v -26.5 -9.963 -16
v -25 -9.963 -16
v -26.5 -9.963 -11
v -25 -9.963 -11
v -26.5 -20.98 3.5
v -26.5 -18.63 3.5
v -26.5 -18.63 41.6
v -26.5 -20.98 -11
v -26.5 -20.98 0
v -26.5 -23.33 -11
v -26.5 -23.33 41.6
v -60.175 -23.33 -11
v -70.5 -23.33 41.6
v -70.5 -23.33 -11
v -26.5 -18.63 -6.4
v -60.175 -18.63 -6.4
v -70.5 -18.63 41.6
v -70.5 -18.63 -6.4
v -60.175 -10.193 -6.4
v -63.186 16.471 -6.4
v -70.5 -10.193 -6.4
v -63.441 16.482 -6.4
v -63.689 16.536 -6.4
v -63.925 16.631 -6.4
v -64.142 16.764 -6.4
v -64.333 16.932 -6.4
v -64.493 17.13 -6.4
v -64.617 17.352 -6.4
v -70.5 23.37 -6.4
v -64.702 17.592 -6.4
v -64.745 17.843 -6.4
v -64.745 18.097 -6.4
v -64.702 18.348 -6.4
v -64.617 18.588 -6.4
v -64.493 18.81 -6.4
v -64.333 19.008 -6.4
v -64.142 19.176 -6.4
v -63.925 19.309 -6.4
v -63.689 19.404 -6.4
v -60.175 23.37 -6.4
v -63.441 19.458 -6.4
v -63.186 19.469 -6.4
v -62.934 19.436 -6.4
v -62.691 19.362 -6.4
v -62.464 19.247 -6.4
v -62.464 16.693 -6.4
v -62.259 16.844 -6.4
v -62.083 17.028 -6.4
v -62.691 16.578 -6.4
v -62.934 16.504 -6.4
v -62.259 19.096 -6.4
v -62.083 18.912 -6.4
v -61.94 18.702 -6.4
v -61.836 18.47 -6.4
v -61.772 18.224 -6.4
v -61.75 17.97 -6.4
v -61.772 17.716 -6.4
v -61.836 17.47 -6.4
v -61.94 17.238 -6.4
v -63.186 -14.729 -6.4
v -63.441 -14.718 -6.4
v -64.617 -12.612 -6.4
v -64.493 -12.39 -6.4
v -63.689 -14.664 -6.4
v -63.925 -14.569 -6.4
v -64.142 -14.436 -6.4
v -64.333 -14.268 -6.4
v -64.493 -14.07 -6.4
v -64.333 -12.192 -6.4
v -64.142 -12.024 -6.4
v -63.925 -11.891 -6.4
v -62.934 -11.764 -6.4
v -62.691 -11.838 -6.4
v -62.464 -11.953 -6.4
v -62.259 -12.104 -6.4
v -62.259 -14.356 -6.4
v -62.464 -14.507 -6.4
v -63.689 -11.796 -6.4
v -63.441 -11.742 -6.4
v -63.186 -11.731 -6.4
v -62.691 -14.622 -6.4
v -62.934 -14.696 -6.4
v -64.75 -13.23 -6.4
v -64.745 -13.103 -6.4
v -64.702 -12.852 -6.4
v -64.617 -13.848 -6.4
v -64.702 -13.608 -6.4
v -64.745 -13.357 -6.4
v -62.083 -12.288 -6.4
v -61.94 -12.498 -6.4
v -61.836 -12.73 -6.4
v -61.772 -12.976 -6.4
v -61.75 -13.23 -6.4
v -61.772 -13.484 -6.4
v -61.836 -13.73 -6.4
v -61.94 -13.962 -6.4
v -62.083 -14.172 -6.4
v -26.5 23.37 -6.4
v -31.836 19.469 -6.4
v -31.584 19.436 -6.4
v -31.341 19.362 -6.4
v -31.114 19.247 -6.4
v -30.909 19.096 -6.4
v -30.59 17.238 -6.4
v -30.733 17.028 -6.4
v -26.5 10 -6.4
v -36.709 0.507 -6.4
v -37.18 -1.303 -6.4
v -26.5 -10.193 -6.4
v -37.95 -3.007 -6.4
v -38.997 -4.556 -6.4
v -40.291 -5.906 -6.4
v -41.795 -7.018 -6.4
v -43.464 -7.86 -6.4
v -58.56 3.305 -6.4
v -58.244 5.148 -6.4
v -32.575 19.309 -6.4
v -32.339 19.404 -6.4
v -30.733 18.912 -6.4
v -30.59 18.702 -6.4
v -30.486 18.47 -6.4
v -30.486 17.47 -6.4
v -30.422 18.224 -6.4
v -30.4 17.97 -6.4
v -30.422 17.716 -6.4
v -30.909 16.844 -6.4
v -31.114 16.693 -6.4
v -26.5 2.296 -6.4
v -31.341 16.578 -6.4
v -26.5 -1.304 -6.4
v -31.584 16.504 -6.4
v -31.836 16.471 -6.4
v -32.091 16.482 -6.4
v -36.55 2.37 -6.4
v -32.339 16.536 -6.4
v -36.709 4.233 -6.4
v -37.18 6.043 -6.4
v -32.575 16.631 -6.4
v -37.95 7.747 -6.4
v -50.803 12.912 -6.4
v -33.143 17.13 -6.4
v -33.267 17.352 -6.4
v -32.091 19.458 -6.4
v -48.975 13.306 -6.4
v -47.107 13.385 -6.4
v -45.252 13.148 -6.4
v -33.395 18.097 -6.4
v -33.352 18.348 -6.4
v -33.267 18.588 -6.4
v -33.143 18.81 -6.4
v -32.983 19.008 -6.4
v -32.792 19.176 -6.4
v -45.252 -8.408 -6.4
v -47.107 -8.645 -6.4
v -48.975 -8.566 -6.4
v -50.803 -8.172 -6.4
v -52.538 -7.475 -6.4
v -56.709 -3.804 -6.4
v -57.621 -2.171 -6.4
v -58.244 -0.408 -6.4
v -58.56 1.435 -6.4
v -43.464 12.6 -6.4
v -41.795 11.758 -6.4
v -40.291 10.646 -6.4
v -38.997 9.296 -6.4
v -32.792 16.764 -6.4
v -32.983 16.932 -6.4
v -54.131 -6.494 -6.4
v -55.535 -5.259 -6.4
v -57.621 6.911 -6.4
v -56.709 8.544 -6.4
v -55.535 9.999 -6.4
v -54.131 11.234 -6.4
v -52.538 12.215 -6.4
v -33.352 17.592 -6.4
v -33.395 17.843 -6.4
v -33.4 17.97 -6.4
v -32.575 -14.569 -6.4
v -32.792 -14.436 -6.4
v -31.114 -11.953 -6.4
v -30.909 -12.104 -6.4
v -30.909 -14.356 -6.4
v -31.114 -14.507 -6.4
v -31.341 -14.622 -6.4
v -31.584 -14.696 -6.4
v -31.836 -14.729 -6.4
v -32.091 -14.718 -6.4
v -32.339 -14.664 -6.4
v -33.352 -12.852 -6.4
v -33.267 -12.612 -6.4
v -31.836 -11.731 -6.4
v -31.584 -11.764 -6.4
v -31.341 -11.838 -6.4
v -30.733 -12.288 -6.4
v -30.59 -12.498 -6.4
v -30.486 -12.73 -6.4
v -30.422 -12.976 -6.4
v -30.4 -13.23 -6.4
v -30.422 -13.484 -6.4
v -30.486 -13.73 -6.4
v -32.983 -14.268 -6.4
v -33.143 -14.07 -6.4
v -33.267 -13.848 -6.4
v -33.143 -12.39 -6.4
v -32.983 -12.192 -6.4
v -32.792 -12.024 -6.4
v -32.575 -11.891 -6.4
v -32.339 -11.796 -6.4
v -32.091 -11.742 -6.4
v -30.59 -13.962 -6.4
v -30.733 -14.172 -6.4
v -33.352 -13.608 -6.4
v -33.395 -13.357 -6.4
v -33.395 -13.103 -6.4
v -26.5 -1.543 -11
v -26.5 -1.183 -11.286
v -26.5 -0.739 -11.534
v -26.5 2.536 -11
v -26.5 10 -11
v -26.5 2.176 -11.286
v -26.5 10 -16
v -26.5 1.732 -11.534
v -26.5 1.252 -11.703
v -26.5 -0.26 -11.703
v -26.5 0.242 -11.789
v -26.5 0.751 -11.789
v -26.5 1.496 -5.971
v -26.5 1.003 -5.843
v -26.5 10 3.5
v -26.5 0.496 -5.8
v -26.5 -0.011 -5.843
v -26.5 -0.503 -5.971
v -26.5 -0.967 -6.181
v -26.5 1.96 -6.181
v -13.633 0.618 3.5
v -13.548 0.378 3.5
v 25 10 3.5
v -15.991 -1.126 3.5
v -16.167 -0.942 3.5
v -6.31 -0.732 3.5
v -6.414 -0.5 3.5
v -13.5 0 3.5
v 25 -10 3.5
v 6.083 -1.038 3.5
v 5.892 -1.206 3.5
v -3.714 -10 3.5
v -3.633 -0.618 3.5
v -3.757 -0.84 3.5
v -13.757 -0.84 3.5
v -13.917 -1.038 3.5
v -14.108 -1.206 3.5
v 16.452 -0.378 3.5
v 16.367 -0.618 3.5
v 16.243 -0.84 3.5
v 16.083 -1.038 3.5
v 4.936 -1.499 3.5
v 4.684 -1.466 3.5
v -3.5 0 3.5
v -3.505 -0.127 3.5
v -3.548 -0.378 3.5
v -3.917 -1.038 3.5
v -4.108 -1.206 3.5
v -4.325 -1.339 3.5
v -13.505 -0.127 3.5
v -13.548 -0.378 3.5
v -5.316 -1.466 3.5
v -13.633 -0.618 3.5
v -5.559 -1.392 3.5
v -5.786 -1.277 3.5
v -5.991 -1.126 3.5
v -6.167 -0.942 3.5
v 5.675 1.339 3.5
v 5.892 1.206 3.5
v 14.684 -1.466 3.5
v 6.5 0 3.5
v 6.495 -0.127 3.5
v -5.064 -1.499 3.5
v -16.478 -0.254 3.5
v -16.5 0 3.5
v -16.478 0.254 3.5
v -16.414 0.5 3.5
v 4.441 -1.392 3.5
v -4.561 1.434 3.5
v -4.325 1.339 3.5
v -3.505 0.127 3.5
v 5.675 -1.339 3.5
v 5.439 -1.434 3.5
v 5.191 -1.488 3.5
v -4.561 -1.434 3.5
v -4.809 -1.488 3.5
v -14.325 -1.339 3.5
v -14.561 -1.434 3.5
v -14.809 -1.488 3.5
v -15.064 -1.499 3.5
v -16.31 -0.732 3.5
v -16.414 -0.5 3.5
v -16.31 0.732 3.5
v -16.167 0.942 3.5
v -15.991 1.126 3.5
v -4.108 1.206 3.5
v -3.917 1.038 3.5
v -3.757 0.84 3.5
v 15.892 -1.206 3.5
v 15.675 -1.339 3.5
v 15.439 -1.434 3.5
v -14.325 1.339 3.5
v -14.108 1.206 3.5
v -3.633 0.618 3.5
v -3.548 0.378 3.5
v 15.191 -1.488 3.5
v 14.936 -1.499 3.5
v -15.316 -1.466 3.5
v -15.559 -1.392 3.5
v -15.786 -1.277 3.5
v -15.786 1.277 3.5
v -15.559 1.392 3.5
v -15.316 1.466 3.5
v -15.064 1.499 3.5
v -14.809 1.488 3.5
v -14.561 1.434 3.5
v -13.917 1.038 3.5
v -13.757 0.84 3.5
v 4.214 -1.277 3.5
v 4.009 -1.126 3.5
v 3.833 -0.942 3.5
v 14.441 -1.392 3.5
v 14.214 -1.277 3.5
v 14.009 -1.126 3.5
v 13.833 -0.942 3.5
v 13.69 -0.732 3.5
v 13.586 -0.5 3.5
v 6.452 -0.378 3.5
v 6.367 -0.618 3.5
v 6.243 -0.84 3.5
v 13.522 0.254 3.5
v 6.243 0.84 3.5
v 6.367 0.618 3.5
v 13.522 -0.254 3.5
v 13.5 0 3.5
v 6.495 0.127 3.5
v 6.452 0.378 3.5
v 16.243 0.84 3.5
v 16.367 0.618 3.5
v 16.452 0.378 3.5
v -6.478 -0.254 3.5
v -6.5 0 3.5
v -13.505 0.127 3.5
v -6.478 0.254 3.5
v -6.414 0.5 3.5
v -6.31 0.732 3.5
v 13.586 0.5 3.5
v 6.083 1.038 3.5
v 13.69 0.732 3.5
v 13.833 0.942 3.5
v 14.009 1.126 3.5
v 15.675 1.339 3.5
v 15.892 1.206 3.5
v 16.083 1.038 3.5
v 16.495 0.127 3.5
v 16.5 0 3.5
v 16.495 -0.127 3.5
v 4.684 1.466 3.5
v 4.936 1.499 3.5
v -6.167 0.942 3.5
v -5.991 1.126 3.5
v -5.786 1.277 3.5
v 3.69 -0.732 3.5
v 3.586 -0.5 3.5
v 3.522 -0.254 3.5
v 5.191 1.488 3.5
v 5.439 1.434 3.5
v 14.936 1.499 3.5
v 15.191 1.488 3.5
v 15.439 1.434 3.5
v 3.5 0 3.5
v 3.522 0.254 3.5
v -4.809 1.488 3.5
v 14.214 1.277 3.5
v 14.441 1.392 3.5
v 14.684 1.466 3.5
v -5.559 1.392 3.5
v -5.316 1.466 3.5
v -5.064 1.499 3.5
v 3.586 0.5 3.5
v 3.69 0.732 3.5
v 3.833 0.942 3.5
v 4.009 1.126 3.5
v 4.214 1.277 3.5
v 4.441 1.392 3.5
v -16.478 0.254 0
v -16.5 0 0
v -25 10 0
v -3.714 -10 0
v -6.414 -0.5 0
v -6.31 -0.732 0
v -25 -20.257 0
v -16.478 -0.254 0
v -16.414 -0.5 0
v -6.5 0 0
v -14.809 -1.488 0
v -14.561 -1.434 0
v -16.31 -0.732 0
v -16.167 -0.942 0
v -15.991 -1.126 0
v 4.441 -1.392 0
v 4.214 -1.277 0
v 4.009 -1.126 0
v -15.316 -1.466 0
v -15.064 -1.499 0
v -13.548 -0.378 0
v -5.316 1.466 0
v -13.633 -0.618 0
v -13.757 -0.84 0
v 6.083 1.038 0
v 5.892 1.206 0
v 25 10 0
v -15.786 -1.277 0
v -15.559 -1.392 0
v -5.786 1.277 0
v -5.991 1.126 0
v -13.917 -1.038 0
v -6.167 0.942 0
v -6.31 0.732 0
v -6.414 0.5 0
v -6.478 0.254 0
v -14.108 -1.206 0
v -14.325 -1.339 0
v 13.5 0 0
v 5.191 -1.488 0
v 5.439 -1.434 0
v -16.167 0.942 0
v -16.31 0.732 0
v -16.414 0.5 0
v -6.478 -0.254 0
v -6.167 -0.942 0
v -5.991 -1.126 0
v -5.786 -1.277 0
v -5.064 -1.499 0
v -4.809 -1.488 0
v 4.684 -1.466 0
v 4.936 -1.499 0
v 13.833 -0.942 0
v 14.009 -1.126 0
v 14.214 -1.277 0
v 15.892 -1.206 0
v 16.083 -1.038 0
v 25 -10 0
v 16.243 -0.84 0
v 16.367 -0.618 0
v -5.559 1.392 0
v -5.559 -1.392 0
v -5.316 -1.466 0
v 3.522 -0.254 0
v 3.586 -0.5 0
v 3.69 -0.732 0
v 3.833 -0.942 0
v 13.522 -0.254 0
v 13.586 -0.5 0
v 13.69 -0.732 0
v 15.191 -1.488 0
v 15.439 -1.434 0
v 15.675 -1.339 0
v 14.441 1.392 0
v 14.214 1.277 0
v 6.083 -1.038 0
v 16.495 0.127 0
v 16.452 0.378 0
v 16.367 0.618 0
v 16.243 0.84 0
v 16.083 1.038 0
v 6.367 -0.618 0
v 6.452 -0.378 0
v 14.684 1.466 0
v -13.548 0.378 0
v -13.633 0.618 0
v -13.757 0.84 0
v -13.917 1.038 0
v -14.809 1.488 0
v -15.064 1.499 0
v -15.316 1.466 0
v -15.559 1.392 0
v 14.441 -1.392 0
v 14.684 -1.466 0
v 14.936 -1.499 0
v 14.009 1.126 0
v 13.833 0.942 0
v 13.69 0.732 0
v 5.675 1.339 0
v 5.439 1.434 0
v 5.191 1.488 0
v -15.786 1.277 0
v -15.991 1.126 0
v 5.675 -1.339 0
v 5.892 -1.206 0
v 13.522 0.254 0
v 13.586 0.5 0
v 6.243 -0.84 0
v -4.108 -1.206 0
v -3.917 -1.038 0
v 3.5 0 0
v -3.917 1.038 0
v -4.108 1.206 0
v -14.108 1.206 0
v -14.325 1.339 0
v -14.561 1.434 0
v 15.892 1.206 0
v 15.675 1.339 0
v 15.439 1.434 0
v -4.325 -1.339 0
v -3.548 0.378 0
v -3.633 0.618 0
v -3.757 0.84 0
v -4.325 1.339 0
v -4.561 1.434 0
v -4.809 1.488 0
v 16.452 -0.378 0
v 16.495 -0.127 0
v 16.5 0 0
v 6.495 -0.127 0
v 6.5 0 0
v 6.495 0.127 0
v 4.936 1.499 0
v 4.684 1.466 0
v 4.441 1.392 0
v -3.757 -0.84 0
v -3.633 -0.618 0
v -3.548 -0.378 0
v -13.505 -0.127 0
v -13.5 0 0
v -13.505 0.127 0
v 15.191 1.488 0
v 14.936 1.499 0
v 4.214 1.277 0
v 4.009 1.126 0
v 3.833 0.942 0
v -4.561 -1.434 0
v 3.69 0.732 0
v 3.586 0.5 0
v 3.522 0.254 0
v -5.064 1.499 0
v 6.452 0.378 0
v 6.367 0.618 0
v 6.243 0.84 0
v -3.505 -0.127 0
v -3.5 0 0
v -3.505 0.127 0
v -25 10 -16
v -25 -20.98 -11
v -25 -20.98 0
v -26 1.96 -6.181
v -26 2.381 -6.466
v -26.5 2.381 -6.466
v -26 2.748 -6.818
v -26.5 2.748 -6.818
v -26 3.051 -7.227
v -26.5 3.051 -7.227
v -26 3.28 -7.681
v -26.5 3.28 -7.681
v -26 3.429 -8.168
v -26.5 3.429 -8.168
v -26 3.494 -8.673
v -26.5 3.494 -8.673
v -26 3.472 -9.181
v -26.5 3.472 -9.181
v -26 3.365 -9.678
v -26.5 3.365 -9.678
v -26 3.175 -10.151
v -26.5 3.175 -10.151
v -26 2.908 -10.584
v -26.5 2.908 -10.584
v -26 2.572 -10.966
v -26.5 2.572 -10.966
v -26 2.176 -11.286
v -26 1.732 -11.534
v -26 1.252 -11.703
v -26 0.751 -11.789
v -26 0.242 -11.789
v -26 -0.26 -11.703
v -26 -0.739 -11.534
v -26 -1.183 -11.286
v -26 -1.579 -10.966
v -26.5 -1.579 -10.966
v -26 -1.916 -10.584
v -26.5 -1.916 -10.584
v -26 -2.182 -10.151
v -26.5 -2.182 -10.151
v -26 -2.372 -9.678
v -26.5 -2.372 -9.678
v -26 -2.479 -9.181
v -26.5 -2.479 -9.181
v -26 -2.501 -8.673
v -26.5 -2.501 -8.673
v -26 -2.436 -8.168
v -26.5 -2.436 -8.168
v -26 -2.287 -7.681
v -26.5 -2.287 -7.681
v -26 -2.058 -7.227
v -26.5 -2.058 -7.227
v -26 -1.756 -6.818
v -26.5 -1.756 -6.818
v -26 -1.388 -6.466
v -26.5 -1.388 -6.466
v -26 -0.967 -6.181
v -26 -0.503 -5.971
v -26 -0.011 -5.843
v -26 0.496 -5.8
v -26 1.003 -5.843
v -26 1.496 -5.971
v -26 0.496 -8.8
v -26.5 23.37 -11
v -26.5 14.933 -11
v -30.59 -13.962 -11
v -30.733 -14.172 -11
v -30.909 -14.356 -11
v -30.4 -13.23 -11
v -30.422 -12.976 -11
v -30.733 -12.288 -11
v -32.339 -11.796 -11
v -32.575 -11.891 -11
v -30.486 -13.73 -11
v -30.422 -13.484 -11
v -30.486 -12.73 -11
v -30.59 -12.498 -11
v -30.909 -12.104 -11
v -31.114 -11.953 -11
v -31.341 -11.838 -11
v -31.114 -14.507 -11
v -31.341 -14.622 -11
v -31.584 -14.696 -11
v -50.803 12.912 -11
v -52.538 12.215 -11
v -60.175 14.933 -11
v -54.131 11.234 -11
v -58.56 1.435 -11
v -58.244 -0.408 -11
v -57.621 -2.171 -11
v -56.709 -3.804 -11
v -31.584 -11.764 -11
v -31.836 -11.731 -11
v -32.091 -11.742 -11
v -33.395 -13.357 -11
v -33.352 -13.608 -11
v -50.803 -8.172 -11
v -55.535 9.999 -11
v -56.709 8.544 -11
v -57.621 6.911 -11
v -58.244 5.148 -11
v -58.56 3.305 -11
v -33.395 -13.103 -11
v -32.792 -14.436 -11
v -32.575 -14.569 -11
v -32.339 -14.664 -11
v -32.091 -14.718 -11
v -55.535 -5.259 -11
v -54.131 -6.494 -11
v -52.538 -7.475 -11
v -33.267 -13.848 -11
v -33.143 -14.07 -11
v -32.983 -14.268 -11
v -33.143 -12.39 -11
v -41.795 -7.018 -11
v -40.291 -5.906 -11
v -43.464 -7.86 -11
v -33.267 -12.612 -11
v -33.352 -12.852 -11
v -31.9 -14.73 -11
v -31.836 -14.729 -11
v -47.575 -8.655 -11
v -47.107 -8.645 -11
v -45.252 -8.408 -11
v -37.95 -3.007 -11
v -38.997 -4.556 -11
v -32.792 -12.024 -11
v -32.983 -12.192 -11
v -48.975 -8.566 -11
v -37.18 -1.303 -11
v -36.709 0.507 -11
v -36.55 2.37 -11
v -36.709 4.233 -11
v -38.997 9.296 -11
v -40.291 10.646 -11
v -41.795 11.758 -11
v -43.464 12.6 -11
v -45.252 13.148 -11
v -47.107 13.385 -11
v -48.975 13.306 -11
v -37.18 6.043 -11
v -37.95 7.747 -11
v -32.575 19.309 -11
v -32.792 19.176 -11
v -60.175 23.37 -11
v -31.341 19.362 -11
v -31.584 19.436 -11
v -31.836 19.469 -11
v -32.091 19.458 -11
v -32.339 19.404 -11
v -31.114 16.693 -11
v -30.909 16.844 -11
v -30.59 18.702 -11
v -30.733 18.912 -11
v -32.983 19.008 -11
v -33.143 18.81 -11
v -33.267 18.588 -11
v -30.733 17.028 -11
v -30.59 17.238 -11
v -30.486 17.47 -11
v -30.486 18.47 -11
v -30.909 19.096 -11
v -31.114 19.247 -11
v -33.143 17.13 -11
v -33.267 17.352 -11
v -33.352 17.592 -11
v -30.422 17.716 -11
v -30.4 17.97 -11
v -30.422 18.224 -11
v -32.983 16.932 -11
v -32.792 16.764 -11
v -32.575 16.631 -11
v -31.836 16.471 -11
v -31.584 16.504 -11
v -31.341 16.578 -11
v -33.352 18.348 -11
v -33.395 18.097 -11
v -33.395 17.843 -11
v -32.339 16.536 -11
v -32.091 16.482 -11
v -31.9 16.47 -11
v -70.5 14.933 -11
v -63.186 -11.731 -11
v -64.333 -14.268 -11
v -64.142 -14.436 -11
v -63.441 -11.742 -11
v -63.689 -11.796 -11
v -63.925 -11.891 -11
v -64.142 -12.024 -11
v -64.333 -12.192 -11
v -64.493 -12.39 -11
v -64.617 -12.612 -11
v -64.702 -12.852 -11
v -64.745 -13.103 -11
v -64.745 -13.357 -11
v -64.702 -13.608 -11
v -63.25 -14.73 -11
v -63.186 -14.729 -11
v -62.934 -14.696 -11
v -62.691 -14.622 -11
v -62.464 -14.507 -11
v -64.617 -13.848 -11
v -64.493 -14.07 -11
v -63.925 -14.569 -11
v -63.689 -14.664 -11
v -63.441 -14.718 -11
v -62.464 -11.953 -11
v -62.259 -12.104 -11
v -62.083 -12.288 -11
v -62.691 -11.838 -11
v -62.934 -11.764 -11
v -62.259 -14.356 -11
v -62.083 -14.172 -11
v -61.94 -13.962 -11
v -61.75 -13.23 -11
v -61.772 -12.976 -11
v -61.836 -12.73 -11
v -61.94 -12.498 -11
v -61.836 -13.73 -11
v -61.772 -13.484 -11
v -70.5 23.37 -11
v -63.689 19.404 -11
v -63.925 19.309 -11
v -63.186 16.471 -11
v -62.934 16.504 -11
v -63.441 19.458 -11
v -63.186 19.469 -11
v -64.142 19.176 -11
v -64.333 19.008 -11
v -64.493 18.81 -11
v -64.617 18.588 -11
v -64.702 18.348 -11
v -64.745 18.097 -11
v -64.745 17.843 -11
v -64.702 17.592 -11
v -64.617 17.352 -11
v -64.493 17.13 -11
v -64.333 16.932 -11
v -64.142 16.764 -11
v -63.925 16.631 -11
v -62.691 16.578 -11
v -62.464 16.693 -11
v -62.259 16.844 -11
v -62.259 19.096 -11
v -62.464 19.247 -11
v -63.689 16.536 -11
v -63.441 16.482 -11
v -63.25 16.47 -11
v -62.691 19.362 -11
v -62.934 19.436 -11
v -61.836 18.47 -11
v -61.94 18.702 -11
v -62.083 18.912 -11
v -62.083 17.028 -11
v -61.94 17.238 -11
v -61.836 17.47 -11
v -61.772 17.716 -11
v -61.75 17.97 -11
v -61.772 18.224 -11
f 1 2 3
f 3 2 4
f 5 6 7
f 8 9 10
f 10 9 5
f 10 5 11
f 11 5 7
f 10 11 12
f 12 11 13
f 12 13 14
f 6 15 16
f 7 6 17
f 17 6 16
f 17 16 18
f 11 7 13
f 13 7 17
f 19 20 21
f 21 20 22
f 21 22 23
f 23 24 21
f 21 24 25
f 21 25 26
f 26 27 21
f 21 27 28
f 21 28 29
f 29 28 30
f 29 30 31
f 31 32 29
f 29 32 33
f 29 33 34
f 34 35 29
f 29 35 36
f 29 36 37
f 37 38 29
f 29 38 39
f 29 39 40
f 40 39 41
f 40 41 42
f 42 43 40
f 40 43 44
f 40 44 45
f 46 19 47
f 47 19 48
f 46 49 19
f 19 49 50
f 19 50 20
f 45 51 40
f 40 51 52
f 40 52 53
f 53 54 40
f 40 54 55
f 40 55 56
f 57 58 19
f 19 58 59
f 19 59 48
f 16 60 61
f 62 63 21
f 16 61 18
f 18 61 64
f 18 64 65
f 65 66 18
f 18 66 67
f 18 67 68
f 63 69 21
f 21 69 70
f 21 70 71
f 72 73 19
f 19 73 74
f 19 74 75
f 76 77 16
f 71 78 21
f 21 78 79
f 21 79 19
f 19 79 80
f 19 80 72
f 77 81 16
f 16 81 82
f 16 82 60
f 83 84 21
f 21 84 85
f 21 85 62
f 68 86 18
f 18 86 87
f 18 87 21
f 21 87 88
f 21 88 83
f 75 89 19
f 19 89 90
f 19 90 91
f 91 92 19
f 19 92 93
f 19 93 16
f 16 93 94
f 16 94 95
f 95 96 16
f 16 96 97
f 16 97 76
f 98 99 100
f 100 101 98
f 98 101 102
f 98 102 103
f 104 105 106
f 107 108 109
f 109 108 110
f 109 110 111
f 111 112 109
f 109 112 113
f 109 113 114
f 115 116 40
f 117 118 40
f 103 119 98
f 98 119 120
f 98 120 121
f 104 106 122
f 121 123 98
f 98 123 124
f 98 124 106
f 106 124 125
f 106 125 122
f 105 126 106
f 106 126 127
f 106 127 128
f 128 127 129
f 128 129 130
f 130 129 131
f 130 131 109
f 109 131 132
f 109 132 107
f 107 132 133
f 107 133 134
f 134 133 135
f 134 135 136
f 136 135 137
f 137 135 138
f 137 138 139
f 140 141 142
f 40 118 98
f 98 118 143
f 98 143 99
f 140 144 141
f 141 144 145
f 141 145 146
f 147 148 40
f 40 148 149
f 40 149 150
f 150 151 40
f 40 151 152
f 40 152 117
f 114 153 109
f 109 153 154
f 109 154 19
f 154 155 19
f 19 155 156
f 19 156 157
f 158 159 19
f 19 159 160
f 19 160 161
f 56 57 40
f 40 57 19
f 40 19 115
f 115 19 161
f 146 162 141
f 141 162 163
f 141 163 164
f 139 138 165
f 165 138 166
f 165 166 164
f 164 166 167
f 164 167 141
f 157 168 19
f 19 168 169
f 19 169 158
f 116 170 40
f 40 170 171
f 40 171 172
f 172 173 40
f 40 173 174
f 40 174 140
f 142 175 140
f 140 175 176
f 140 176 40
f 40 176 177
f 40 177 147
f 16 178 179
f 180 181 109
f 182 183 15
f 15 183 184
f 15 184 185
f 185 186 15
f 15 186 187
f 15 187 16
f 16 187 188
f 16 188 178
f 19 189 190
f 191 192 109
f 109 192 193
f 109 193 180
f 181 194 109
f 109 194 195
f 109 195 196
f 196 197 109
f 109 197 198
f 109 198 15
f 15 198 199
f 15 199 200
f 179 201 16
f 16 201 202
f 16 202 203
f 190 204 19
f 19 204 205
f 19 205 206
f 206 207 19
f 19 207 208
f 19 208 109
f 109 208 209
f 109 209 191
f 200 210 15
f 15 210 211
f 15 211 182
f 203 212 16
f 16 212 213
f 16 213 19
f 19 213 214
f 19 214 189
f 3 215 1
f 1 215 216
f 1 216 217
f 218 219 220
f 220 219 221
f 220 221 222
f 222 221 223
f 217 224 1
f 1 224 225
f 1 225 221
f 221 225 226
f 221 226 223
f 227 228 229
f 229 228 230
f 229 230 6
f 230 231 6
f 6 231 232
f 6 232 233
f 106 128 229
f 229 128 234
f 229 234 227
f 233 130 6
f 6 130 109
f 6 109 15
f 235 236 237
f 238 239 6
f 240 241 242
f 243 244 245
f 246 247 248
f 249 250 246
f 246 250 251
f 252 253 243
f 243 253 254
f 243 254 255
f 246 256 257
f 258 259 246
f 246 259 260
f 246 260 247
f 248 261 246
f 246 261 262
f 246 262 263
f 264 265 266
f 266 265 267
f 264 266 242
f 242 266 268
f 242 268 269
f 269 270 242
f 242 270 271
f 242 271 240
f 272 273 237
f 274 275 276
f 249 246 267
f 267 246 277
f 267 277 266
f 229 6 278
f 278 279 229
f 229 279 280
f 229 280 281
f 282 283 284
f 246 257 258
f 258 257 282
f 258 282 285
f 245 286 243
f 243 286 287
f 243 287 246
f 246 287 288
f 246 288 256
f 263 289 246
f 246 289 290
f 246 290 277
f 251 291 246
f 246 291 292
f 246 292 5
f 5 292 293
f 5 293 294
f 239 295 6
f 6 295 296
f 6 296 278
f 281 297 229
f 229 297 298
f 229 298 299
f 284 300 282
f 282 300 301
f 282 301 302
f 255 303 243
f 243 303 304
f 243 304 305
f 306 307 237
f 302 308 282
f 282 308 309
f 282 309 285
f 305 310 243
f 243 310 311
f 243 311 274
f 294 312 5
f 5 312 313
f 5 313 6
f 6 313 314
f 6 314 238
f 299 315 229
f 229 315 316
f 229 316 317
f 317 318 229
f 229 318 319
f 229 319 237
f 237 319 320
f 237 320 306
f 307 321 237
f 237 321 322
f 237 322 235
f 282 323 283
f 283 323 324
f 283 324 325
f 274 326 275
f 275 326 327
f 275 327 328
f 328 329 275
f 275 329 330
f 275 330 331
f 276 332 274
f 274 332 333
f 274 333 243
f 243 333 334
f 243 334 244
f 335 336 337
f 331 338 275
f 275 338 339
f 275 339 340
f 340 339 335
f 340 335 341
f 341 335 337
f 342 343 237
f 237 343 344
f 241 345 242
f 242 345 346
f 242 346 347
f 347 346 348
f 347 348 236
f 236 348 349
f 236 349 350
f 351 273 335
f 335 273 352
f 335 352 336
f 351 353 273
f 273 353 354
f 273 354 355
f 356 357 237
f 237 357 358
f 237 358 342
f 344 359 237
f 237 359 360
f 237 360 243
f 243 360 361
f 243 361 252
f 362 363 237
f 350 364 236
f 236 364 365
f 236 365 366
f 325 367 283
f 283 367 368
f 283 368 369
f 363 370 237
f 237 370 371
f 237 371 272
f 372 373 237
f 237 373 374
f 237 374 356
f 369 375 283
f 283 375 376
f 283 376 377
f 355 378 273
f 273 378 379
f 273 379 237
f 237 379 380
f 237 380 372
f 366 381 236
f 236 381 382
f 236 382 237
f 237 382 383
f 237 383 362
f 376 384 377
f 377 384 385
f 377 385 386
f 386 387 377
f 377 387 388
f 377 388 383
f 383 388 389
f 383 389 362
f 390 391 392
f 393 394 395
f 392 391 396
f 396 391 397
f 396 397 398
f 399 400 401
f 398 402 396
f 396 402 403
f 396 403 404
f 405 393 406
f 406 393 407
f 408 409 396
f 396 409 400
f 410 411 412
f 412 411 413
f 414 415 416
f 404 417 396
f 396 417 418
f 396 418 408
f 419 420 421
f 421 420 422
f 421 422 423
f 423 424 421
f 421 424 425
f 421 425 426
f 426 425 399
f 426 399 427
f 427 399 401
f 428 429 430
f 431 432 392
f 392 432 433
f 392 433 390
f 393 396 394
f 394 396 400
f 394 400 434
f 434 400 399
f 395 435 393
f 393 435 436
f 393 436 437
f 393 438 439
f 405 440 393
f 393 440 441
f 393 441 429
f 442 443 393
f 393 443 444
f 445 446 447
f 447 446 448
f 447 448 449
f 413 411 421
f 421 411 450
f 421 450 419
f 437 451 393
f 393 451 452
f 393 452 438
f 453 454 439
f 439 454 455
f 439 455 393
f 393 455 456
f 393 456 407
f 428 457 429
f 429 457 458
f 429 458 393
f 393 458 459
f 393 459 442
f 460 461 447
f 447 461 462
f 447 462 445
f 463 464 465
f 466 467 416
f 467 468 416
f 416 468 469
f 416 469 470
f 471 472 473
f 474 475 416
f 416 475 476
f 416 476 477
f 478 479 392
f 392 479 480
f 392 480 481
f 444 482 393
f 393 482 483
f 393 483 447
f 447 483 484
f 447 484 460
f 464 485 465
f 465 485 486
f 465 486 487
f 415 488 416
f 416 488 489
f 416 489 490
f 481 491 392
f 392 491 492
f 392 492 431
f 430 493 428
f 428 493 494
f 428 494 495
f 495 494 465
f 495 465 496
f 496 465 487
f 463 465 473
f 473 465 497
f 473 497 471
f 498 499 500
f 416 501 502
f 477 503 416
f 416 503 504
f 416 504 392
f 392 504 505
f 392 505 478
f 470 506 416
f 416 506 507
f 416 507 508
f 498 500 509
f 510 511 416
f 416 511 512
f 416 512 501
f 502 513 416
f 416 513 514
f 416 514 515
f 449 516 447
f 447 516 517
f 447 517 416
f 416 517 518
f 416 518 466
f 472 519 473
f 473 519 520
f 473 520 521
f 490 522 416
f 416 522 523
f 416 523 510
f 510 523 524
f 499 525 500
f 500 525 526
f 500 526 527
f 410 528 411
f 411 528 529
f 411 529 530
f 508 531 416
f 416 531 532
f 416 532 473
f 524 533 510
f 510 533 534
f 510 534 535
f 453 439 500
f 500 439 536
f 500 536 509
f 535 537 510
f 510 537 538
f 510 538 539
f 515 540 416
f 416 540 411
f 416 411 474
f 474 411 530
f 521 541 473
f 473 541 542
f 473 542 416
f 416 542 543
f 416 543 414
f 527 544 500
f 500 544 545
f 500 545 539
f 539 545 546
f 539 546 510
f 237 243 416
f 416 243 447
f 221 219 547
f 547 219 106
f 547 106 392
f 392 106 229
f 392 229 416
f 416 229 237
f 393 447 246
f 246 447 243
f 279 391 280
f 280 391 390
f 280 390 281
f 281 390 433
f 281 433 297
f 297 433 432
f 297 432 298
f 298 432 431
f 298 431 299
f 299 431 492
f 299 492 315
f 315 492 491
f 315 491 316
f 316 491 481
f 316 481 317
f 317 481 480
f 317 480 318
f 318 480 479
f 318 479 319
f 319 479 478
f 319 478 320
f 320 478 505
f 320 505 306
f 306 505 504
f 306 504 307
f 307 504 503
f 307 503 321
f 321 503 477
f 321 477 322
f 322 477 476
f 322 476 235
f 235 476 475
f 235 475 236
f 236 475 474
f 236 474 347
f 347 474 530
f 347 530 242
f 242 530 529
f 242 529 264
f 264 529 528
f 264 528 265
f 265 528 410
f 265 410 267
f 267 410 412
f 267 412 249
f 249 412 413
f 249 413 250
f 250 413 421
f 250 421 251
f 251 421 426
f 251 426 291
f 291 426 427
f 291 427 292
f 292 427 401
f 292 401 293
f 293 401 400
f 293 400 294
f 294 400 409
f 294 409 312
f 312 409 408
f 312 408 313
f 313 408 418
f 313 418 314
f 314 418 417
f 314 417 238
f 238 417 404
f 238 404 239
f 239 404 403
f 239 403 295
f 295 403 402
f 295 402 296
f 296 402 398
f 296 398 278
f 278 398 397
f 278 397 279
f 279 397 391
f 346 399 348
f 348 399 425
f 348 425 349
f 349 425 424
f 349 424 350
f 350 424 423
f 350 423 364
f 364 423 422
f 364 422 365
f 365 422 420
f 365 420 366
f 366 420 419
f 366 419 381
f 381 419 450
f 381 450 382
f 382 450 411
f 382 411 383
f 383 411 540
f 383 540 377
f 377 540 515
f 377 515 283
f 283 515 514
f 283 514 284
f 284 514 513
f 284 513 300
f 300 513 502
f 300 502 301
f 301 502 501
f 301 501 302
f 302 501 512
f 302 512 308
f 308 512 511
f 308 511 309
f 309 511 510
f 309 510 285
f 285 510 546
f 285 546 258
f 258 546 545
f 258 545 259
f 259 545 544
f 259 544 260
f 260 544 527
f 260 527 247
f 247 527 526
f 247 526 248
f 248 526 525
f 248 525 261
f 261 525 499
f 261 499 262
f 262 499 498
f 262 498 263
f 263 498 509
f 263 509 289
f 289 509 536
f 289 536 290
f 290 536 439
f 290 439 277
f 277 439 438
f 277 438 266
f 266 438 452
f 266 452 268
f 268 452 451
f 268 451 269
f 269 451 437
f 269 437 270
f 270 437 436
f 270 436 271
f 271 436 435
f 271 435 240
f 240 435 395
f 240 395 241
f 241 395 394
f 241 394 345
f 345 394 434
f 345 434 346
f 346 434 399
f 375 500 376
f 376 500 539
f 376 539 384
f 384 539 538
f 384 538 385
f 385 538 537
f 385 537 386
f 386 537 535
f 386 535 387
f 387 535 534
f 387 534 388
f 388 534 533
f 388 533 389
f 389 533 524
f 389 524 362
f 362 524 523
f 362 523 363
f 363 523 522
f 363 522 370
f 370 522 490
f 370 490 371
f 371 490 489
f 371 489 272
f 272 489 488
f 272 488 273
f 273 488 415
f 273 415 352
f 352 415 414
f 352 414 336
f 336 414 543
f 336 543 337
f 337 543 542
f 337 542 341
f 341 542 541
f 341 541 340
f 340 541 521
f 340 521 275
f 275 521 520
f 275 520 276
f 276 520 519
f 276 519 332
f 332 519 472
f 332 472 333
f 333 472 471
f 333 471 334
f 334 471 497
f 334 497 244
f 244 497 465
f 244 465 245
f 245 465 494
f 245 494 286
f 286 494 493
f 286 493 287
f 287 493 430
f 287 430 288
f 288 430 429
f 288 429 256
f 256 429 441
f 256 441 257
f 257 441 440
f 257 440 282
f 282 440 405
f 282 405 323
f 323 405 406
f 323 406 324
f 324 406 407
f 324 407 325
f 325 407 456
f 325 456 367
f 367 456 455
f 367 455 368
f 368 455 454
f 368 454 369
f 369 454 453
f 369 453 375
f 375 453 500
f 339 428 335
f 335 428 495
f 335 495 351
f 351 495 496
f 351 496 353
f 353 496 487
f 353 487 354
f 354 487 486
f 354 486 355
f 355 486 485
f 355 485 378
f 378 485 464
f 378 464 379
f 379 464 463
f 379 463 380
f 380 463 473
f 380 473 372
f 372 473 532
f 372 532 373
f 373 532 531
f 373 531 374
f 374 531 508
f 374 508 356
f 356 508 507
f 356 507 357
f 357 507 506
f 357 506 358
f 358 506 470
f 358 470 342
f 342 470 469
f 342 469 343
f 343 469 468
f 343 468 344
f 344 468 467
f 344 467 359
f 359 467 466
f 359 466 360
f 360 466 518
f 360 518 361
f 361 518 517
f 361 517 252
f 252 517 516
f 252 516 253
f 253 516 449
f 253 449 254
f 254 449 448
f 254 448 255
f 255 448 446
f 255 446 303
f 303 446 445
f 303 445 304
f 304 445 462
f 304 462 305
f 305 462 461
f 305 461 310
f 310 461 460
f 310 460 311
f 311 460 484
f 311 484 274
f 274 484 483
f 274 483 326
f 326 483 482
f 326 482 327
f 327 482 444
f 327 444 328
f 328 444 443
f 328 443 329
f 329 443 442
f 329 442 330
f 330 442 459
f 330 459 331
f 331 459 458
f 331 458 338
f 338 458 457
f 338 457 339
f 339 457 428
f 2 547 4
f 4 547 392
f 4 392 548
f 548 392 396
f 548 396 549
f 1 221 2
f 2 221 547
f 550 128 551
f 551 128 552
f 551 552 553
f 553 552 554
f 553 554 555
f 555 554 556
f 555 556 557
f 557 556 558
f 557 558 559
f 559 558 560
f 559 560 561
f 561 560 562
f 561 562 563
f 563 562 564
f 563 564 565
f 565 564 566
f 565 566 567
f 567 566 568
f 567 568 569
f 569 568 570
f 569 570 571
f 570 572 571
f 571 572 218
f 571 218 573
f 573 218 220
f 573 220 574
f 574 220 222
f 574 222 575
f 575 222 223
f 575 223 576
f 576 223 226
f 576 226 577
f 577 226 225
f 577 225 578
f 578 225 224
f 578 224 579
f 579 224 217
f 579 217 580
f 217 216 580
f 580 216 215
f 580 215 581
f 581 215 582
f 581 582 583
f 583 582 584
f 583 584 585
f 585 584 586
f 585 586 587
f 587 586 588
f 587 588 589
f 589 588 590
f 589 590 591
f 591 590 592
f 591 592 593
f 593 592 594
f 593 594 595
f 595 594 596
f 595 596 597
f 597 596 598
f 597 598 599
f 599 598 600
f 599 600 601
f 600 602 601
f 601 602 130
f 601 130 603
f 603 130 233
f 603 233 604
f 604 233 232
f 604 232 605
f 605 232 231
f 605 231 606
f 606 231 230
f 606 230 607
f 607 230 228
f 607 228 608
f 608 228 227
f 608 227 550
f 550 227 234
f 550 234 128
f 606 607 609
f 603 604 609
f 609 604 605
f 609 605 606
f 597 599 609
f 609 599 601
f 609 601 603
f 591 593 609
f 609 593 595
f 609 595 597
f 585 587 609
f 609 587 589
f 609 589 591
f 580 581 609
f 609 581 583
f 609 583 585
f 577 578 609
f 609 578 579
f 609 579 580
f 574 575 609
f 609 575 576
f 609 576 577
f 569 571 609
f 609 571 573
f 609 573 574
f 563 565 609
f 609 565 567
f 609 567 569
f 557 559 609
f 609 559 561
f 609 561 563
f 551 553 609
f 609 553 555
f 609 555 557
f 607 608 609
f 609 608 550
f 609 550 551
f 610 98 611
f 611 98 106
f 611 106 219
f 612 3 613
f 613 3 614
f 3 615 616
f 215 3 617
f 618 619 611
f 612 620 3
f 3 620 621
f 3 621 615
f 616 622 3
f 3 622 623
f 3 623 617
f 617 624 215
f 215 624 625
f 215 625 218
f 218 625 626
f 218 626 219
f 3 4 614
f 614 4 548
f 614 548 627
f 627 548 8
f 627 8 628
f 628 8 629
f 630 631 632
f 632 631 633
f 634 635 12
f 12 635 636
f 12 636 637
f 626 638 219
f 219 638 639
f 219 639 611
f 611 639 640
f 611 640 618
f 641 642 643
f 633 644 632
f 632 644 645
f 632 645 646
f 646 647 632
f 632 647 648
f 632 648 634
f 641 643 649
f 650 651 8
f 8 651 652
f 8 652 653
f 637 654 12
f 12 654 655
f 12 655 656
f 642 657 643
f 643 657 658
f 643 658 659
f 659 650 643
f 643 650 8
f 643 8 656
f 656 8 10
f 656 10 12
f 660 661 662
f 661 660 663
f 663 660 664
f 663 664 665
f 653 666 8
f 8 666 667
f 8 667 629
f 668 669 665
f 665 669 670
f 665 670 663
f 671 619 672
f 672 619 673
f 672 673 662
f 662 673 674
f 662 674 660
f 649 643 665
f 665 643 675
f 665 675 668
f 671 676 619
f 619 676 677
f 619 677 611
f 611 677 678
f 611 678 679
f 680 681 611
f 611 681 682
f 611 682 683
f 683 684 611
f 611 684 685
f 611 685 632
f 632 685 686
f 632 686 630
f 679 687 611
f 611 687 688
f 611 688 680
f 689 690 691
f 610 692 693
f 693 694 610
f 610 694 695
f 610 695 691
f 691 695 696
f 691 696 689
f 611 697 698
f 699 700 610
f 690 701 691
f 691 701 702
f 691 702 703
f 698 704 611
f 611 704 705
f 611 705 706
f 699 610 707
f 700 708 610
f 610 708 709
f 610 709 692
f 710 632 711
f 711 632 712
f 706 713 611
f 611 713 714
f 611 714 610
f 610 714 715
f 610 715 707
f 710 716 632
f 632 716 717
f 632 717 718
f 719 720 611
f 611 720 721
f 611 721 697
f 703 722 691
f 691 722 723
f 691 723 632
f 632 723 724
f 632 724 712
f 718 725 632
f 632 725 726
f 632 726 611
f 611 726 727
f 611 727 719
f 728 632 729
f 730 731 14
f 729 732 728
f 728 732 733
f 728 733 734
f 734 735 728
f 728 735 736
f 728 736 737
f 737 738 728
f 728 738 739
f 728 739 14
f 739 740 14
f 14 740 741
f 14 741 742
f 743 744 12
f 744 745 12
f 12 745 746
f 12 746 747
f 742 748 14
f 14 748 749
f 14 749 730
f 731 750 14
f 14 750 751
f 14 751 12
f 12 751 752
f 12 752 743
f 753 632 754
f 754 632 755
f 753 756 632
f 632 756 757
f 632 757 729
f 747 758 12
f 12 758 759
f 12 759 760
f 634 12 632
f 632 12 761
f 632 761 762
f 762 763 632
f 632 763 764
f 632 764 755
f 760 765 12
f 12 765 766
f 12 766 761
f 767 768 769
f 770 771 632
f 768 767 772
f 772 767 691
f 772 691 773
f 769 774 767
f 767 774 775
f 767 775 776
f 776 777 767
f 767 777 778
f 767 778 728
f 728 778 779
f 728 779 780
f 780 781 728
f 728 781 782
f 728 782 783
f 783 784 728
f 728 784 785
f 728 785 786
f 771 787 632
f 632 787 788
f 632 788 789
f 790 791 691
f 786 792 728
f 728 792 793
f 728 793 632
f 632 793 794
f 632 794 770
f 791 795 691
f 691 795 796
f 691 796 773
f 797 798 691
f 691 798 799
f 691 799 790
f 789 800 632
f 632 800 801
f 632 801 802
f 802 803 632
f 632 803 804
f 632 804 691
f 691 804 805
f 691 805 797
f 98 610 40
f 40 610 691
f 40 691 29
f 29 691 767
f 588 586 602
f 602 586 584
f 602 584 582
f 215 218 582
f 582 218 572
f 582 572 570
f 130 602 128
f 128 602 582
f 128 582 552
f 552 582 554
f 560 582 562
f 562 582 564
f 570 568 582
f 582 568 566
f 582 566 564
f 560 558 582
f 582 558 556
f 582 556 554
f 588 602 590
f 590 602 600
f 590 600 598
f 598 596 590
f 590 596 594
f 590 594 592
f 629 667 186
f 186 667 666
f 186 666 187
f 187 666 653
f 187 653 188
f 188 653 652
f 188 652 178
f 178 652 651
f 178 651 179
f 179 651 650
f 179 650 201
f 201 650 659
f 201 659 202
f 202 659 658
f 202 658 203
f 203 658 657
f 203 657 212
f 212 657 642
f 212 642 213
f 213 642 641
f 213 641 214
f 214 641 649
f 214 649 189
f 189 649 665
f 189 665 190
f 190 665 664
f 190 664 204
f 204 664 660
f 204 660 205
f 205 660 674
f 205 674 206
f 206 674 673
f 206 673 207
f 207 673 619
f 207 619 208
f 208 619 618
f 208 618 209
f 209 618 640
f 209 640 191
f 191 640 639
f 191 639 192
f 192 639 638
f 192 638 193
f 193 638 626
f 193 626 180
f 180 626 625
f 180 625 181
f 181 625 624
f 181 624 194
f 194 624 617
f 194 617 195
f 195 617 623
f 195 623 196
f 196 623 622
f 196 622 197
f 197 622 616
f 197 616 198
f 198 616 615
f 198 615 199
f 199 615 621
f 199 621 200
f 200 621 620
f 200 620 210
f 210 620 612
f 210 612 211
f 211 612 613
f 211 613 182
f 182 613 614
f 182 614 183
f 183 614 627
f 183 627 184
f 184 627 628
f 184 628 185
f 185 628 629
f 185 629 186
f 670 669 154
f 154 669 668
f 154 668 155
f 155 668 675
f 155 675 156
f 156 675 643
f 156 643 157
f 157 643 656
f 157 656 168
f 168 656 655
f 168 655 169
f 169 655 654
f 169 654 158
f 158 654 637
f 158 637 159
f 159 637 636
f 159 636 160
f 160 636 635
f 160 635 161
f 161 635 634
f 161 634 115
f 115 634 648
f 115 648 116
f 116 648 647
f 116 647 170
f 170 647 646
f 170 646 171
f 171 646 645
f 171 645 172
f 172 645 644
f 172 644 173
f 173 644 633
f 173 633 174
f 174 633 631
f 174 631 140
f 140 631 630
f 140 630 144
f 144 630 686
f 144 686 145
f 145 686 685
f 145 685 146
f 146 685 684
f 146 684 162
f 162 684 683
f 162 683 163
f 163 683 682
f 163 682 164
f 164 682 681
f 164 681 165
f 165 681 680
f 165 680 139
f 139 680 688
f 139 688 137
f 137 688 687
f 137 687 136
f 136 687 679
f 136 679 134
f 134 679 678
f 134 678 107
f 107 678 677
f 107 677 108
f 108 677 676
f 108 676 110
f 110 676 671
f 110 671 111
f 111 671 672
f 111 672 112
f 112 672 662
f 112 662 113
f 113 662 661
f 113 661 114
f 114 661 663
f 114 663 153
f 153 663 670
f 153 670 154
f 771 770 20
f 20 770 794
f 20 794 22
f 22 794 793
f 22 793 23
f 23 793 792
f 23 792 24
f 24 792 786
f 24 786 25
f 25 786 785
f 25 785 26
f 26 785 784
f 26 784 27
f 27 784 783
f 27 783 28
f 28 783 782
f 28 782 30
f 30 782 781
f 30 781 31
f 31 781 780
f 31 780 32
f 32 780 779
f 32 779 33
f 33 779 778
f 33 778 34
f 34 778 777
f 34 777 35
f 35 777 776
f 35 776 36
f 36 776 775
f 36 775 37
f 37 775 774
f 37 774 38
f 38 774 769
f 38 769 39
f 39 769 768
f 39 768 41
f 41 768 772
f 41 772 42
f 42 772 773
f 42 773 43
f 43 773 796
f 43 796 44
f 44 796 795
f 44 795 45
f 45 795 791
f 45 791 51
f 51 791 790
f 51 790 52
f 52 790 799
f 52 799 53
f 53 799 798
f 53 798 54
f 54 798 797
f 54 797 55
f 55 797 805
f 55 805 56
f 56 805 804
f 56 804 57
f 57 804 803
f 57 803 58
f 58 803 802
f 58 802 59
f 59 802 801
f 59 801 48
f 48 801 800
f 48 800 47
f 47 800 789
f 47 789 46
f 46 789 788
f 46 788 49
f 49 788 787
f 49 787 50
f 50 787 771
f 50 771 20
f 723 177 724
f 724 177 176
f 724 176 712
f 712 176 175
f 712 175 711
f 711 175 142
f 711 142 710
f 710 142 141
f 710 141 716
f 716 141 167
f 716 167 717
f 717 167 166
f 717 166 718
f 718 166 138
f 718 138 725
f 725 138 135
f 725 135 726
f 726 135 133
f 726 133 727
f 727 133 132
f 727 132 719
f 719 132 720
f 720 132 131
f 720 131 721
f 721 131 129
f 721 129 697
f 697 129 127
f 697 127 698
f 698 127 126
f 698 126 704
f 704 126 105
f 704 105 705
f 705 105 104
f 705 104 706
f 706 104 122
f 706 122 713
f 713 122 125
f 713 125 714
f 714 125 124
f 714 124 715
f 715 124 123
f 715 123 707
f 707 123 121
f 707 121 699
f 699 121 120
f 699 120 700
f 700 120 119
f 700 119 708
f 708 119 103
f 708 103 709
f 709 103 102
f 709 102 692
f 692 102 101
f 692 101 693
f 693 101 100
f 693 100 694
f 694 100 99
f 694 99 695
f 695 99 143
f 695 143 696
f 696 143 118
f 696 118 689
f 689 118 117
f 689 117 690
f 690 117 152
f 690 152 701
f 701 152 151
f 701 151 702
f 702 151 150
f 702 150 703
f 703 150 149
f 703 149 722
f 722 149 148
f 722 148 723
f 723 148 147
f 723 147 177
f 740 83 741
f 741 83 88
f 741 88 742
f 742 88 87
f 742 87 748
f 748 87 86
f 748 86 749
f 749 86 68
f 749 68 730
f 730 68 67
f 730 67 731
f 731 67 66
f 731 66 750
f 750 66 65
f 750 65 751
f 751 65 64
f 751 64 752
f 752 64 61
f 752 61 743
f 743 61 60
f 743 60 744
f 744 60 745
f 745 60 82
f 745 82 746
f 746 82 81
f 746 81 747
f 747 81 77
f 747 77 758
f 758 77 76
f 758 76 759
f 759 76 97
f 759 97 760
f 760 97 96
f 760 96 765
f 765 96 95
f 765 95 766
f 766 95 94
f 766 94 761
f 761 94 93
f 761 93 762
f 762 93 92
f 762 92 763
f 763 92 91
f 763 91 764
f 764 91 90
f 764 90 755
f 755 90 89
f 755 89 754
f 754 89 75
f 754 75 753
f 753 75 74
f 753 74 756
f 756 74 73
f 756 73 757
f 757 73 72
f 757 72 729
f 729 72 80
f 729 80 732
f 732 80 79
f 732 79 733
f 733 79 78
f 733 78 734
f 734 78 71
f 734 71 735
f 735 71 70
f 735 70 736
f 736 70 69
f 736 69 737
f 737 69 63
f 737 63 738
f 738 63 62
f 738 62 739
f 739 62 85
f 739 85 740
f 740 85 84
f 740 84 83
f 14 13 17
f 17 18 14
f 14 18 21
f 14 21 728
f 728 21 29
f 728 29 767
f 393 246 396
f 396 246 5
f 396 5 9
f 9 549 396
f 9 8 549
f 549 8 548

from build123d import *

# Parameters (mm, degrees)
IZIM1_W                      = 50
IZIM1_H                      = 20
IZIM1_R                      = 1.5
Y_KSEKLIK_EKSTR_ZYON1_DEPTH  = 3.5
IZIM2_W                      = 19.5
IZIM2_H                      = 19.962779687
IZIM2_R                      = 2
Y_KSEKLIK_EKSTR_ZYON2_DEPTH  = 1.5
IZIM4_R                      = 3
KES_EKSTR_ZYON1_DEPTH        = 0.5
IZIM5_W                      = 4.6
IZIM5_H                      = 46.7
Y_KSEKLIK_EKSTR_ZYON3_DEPTH  = 52
IZIM6_W                      = 52
IZIM6_H                      = 4.7
Y_KSEKLIK_EKSTR_ZYON4_DEPTH  = 48
IZIM7_R                      = 2
Y_KSEKLIK_EKSTR_ZYON7_DEPTH  = 1
IZIM8_R                      = 1.5
IZIM8_R_2                    = 11.025
KES_EKSTR_ZYON3_DEPTH        = 67
IZIM9_W                      = 8
IZIM9_H                      = 52.582189456
KES_EKSTR_ZYON4_DEPTH        = 86
IZIM10_W                     = 8
IZIM10_H                     = 54.08264119
KES_EKSTR_ZYON5_DEPTH        = 86
Y_KSEKLIK_EKSTR_ZYON13_DEPTH = 3.5
IZIM13_W                     = 11
IZIM13_H                     = 11.017220313
Y_KSEKLIK_EKSTR_ZYON15_DEPTH = 1.5


with BuildPart() as part:
    # Çizim1 → Yükseklik-Ekstrüzyon1 (new body)
    with BuildSketch(Plane.XY):
        Rectangle(IZIM1_W, IZIM1_H)
        with Locations((-15, 0)):
            Circle(IZIM1_R, mode=Mode.SUBTRACT)
        with Locations((-5, 0)):
            Circle(IZIM1_R, mode=Mode.SUBTRACT)
        with Locations((5, 0)):
            Circle(IZIM1_R, mode=Mode.SUBTRACT)
        with Locations((15, 0)):
            Circle(IZIM1_R, mode=Mode.SUBTRACT)
    extrude(amount=Y_KSEKLIK_EKSTR_ZYON1_DEPTH)

    # Çizim2 → Yükseklik-Ekstrüzyon2 (add)
    with BuildSketch(Plane.ZY.offset(25)):
        with Locations((-6.25, 0.018610156)):
            Rectangle(IZIM2_W, IZIM2_H)
        with Locations((-8.8, 0.496433055)):
            Circle(IZIM2_R, mode=Mode.SUBTRACT)
    extrude(amount=Y_KSEKLIK_EKSTR_ZYON2_DEPTH)

    # Çizim4 → Kes-Ekstrüzyon1 (cut)
    with BuildSketch(Plane.ZY.offset(26.5)):
        with Locations((-8.8, 0.496433055)):
            Circle(IZIM4_R)
    extrude(amount=-KES_EKSTR_ZYON1_DEPTH, mode=Mode.SUBTRACT)

    # Çizim5 → Yükseklik-Ekstrüzyon3 (add)
    with BuildSketch(Plane.ZY.offset(26.5)):
        with Locations((-8.7, 0.02)):
            Rectangle(IZIM5_W, IZIM5_H)
    extrude(amount=Y_KSEKLIK_EKSTR_ZYON3_DEPTH)

    # Çizim6 → Yükseklik-Ekstrüzyon4 (add)
    with BuildSketch(Plane.XY.offset(-6.4)):
        with Locations((-52.5, -20.98)):
            Rectangle(IZIM6_W, IZIM6_H)
    extrude(amount=Y_KSEKLIK_EKSTR_ZYON4_DEPTH)

    # Çizim7 → Yükseklik-Ekstrüzyon7 (add)
    with BuildSketch(Plane(origin=(-25, 0, 0), x_dir=(0, 0, -1), z_dir=(1, 0, 0))):
        with Locations((8.8, 0.496433055)):
            Circle(IZIM7_R)
    extrude(amount=-Y_KSEKLIK_EKSTR_ZYON7_DEPTH)

    # Çizim8 → Kes-Ekstrüzyon3 (cut)
    with BuildSketch(Plane.XY.offset(-6.4)):
        with Locations((-31.9, -13.23)):
            Circle(IZIM8_R)
        with Locations((-63.25, -13.23)):
            Circle(IZIM8_R)
        with Locations((-31.9, 17.97)):
            Circle(IZIM8_R)
        with Locations((-63.25, 17.97)):
            Circle(IZIM8_R)
        with Locations((-47.575, 2.37)):
            Circle(IZIM8_R_2)
    extrude(amount=-KES_EKSTR_ZYON3_DEPTH, mode=Mode.SUBTRACT)

    # Çizim9 → Kes-Ekstrüzyon4 (cut)
    with BuildSketch(Plane.XY.offset(-6.4)):
        with Locations((-74.5, -2.921094728)):
            Rectangle(IZIM9_W, IZIM9_H)
    extrude(amount=KES_EKSTR_ZYON4_DEPTH, mode=Mode.SUBTRACT)

    # Çizim10 → Kes-Ekstrüzyon5 (cut)
    with BuildSketch(Plane.XY.offset(-6.4)):
        with Locations((-74.5, -3.671320595)):
            Rectangle(IZIM10_W, IZIM10_H)
    extrude(amount=-KES_EKSTR_ZYON5_DEPTH, mode=Mode.SUBTRACT)

    # Çizim12 → Yükseklik-Ekstrüzyon13 (add)
    with BuildSketch(Plane.XY.offset(3.5)):
        Polygon((-26.5, -20.98), (-26.5, -5.633173316), (5.348461145, -5.633173316), align=None)
    extrude(amount=-Y_KSEKLIK_EKSTR_ZYON13_DEPTH)

    # Çizim13 → Yükseklik-Ekstrüzyon15 (add)
    with BuildSketch(Plane(origin=(-26.5, 0, 0), x_dir=(0, 0, -1), z_dir=(1, 0, 0))):
        with Locations((5.5, -15.471389844)):
            Rectangle(IZIM13_W, IZIM13_H)
    extrude(amount=Y_KSEKLIK_EKSTR_ZYON15_DEPTH)


solid = part.part
